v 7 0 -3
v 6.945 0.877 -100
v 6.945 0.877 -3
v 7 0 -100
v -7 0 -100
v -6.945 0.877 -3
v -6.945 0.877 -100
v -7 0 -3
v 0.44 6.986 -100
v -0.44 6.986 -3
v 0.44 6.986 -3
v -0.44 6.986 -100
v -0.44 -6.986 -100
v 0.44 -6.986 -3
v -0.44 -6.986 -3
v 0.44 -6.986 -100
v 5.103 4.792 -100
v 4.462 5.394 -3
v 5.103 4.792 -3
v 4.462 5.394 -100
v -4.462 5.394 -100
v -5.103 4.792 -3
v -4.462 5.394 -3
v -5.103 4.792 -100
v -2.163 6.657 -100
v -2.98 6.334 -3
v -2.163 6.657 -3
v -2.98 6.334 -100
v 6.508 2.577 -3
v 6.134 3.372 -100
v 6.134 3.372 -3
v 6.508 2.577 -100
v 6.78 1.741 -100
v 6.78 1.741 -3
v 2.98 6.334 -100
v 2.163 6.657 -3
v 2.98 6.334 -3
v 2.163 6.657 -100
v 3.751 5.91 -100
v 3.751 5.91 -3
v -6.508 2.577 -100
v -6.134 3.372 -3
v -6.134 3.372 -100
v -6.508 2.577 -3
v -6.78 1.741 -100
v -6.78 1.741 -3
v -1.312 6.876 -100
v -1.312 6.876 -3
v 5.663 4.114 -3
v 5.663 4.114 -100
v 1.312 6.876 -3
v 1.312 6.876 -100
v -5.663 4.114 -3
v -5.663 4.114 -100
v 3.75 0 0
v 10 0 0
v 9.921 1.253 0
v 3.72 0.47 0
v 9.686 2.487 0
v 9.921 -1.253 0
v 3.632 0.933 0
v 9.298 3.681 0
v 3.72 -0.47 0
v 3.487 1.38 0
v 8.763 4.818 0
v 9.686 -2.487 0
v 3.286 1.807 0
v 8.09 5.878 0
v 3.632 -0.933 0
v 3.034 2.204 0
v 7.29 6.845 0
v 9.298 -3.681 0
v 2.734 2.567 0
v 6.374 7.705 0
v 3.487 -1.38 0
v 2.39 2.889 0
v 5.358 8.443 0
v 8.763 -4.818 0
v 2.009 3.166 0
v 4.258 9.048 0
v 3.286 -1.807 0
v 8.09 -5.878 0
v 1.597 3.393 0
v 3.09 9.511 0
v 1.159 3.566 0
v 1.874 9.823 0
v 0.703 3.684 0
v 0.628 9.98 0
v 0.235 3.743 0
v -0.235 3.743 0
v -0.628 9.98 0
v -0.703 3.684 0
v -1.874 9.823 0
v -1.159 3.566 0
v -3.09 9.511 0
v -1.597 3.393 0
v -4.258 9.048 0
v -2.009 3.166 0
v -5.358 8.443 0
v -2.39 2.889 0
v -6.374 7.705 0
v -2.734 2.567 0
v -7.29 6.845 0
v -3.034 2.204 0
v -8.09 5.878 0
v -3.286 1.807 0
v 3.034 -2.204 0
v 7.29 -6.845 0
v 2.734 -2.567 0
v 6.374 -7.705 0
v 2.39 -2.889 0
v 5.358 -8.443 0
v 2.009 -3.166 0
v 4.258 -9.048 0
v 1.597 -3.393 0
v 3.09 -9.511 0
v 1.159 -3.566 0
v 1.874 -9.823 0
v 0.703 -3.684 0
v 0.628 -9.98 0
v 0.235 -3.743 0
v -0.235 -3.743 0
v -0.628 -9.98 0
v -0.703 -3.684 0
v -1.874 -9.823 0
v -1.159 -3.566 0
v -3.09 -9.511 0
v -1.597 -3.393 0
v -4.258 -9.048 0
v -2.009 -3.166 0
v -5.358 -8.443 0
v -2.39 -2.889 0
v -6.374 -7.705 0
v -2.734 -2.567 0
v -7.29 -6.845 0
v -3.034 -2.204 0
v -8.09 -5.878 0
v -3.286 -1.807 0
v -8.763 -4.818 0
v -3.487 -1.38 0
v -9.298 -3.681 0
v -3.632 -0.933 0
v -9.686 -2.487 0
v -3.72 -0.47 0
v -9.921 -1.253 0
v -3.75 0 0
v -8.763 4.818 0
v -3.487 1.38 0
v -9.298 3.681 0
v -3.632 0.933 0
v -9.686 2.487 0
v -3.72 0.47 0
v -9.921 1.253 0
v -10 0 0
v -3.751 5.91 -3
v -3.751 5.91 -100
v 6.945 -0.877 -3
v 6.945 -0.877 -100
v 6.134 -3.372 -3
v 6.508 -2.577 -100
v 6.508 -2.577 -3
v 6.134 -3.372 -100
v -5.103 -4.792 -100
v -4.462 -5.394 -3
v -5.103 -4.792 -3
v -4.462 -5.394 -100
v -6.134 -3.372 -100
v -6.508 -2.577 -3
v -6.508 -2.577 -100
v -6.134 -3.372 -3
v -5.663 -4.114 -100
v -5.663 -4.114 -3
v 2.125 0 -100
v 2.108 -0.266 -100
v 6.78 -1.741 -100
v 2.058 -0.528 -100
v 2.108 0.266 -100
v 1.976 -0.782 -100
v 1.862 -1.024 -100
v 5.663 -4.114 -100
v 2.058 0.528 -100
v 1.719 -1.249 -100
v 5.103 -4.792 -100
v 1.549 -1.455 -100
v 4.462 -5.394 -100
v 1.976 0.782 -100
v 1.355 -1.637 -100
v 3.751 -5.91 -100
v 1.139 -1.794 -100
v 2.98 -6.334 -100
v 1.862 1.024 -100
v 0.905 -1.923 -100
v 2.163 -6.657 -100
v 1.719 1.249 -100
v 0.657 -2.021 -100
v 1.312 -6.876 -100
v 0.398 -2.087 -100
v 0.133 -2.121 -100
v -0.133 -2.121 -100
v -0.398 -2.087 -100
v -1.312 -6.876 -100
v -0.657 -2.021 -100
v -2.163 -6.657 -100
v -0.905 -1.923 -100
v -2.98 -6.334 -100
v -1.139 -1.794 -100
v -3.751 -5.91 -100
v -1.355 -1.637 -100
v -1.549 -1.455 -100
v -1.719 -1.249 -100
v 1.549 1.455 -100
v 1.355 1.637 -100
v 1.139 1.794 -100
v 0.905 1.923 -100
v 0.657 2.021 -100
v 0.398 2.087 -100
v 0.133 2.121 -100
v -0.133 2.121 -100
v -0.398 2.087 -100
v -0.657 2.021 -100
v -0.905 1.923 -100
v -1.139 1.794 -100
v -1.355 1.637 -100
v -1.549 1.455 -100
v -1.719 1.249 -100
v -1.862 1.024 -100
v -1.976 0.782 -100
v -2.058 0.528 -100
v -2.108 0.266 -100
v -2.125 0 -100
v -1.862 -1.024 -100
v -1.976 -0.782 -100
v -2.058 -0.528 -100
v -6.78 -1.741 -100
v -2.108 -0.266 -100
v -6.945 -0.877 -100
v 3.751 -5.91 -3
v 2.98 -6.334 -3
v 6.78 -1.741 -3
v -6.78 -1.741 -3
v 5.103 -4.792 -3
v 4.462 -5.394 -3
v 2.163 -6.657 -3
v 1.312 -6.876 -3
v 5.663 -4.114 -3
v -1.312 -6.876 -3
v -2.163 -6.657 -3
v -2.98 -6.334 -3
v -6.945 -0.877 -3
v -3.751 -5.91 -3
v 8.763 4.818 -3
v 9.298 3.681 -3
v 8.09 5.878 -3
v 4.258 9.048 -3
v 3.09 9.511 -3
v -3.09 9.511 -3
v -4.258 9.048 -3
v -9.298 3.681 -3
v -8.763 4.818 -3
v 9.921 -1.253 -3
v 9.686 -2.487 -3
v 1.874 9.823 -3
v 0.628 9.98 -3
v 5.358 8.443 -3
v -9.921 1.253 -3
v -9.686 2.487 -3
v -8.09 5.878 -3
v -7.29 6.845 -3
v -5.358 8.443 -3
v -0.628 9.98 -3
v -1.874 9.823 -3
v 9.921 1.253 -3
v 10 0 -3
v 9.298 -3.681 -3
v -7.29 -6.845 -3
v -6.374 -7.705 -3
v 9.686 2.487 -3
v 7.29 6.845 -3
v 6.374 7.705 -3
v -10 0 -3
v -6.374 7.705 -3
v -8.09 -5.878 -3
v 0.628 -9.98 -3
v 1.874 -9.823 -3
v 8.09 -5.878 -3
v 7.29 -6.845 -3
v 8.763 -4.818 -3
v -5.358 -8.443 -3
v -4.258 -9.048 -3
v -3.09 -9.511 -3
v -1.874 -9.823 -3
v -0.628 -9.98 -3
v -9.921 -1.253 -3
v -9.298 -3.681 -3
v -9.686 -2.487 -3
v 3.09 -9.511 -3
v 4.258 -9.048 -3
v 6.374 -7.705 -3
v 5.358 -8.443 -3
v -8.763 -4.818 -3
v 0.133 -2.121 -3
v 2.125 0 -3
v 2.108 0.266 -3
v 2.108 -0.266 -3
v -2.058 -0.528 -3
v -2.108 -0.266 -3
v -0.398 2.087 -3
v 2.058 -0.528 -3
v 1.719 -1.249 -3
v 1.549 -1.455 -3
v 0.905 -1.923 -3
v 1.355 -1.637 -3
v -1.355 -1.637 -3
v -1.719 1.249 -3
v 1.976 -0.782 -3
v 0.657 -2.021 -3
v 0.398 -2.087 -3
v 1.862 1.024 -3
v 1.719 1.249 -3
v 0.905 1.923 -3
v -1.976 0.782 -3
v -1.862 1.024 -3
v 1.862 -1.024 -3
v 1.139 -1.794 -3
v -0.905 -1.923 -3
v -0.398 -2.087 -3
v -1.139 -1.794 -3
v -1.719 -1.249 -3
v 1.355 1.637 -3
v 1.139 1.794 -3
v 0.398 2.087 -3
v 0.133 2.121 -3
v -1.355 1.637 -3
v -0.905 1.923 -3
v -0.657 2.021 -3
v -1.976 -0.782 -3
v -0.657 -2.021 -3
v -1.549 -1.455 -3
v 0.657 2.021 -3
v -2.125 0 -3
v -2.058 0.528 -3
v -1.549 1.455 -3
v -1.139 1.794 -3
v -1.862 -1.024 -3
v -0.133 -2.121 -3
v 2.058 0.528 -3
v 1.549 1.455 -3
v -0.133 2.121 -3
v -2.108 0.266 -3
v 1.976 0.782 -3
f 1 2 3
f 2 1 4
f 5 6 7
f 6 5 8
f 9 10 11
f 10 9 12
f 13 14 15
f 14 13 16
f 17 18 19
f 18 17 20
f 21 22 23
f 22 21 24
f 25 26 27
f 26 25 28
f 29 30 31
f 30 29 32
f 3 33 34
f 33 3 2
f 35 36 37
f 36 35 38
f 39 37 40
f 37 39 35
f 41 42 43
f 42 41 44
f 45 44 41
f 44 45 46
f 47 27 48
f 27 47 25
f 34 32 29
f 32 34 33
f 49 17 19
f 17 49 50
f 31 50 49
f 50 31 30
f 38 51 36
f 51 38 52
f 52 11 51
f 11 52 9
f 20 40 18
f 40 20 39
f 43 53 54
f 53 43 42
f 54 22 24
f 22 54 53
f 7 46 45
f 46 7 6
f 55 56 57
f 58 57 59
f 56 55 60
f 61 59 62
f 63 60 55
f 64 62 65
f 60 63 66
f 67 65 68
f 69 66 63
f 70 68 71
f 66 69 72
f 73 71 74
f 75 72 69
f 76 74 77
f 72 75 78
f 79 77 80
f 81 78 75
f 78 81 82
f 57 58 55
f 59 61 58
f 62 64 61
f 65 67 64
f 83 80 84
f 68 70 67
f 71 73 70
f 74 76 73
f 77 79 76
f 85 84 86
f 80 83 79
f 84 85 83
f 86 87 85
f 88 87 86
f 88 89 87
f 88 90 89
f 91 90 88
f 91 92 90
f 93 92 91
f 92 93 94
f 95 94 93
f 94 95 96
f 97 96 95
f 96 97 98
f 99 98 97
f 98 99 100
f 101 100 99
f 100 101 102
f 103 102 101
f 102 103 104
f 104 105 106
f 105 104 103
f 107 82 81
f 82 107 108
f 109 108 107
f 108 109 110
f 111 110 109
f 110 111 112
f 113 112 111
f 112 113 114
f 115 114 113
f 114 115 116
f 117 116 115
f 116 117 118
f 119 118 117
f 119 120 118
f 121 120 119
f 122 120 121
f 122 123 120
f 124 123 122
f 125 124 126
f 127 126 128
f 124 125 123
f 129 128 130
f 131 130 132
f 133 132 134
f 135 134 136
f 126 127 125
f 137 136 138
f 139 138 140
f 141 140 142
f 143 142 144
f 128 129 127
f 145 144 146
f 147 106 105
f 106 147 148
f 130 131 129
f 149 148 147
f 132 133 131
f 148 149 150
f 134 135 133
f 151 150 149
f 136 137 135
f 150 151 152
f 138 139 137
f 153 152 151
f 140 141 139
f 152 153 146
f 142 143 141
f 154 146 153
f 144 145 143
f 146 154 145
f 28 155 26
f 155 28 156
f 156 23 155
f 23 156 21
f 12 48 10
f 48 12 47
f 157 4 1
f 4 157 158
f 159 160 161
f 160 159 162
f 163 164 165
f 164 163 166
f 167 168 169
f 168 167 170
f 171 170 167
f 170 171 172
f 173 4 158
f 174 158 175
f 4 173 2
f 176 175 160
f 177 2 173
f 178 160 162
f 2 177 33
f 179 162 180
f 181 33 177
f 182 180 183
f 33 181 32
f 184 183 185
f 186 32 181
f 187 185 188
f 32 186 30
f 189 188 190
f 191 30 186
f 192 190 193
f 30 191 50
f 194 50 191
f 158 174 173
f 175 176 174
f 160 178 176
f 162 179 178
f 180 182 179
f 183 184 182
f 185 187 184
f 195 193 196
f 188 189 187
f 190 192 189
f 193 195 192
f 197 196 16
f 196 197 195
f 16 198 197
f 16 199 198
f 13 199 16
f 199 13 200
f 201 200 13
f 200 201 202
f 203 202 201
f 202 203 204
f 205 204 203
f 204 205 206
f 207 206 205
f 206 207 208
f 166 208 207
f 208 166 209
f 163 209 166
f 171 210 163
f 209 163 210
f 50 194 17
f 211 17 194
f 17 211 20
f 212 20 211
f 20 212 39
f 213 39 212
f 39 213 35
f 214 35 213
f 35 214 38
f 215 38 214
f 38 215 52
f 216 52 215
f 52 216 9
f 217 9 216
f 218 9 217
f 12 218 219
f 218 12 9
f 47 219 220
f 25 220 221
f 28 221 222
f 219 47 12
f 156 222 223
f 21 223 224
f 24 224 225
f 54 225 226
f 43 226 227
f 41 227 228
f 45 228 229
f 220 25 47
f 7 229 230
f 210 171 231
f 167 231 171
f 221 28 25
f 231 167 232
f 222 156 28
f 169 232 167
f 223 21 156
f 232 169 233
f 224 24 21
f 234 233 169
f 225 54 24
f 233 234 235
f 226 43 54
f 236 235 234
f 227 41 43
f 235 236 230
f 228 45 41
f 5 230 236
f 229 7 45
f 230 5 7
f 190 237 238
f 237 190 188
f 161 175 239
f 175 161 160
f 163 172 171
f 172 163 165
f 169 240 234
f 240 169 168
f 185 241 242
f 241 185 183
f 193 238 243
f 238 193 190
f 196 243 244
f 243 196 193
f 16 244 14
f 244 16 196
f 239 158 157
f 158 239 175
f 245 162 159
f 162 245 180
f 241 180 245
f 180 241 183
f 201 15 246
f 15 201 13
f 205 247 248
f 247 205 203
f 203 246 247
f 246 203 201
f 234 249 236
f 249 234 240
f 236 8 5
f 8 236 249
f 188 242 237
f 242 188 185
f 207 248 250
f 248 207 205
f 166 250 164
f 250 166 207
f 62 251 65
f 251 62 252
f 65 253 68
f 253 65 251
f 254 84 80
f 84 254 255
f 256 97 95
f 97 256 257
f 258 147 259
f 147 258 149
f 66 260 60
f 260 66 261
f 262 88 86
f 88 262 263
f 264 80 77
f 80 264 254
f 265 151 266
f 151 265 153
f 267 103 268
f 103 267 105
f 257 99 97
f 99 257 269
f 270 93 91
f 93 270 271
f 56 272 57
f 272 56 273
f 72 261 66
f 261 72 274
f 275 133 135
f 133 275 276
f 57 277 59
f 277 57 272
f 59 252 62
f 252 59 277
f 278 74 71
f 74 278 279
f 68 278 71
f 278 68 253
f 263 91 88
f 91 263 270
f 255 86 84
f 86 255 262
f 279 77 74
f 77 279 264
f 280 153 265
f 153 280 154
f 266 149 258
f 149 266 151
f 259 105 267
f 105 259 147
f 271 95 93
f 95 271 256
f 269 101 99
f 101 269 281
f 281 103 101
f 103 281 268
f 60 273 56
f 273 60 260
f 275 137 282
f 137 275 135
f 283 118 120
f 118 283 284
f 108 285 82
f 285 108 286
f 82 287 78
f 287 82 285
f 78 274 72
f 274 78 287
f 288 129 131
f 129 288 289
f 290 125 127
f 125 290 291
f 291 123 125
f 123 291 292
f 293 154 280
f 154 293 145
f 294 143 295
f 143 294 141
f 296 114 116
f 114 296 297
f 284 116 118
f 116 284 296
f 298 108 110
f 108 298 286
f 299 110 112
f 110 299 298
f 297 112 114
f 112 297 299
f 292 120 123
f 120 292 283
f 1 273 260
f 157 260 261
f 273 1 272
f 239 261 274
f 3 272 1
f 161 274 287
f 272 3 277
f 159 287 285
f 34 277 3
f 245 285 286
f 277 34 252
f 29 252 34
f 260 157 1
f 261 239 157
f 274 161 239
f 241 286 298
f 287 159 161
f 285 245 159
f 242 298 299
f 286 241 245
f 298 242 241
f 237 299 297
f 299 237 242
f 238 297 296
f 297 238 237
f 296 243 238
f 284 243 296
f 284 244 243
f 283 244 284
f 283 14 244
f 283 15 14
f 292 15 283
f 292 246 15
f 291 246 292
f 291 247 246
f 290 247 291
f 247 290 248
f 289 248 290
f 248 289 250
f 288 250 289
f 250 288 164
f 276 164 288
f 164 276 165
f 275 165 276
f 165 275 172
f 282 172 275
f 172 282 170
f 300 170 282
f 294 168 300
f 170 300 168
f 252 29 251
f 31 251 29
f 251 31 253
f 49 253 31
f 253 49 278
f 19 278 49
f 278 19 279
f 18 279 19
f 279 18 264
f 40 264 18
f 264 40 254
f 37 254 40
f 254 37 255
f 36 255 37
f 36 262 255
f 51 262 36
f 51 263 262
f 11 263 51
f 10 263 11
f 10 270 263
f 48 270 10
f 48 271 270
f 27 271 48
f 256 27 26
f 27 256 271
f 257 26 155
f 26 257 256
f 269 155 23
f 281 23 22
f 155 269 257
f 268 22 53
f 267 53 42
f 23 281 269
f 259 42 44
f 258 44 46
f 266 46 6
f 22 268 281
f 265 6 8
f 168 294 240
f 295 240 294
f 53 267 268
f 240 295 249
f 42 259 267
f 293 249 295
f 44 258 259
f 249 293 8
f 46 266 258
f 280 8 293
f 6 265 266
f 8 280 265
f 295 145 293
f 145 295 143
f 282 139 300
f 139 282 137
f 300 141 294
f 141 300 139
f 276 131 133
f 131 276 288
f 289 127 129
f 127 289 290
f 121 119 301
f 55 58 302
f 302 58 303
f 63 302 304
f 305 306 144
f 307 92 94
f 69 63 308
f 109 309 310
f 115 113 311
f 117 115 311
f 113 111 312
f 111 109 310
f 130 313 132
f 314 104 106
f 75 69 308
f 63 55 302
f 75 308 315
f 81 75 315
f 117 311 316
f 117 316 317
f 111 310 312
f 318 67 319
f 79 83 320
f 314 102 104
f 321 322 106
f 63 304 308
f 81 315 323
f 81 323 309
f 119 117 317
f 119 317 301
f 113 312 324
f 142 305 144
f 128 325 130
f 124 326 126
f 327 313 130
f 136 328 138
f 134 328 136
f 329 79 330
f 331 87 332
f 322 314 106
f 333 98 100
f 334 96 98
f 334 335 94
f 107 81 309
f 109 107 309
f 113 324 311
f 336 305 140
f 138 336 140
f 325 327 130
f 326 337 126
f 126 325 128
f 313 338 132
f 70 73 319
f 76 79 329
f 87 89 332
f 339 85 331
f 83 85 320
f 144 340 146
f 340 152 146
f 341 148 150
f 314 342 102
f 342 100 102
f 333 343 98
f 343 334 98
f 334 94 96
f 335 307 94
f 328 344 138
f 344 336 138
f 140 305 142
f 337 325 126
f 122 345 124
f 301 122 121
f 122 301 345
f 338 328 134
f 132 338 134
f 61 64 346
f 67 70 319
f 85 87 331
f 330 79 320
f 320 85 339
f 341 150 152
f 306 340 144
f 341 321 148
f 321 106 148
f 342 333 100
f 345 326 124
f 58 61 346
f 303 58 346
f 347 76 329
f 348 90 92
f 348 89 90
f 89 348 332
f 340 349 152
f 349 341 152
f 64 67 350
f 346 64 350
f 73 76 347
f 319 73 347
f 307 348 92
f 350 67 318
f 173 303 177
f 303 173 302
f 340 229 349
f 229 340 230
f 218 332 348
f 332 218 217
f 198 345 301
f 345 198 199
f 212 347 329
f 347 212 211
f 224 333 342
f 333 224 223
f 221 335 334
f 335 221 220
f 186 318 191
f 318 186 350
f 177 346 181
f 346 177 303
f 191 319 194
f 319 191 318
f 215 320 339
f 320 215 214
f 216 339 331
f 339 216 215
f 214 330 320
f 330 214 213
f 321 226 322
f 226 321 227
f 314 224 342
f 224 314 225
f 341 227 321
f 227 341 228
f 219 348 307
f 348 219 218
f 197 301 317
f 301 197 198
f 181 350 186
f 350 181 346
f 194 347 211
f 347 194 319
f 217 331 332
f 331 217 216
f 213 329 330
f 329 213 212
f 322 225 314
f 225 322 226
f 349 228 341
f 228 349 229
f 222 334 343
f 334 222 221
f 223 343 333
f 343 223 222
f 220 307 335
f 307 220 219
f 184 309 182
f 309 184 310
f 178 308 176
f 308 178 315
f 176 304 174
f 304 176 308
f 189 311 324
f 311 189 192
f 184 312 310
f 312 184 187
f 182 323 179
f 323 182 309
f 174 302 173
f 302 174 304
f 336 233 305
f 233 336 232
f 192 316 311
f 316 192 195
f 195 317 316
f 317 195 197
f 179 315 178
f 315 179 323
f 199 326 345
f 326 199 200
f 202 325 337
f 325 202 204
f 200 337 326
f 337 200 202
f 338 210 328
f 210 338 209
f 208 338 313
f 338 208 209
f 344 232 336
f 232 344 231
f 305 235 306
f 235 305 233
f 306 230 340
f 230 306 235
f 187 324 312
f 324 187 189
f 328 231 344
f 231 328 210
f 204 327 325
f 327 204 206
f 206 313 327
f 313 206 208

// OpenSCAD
$fn = 50;


difference() {
	union() {
		translate(v = [0, 0, -100.0000000000]) {
			cylinder(h = 100, r = 7.0000000000);
		}
		translate(v = [0, 0, -3.0000000000]) {
			cylinder(h = 3, r = 10.0000000000);
		}
	}
	union() {
		translate(v = [0, 0, 0]) {
			rotate(a = [0, 0, 0]) {
				difference() {
					union() {
						#translate(v = [0, 0, -100.0000000000]) {
							cylinder(h = 100, r = 2.0000000000);
						}
						#translate(v = [0, 0, -3]) {
							cylinder(h = 3, r = 7.0000000000, r1 = 2.1250000000, r2 = 3.7500000000);
						}
						#translate(v = [0, 0, -100.0000000000]) {
							cylinder(h = 100, r = 2.1250000000);
						}
						#translate(v = [0, 0, -100.0000000000]) {
							cylinder(h = 100, r = 2.0000000000);
						}
					}
					union();
				}
			}
		}
	}
}
